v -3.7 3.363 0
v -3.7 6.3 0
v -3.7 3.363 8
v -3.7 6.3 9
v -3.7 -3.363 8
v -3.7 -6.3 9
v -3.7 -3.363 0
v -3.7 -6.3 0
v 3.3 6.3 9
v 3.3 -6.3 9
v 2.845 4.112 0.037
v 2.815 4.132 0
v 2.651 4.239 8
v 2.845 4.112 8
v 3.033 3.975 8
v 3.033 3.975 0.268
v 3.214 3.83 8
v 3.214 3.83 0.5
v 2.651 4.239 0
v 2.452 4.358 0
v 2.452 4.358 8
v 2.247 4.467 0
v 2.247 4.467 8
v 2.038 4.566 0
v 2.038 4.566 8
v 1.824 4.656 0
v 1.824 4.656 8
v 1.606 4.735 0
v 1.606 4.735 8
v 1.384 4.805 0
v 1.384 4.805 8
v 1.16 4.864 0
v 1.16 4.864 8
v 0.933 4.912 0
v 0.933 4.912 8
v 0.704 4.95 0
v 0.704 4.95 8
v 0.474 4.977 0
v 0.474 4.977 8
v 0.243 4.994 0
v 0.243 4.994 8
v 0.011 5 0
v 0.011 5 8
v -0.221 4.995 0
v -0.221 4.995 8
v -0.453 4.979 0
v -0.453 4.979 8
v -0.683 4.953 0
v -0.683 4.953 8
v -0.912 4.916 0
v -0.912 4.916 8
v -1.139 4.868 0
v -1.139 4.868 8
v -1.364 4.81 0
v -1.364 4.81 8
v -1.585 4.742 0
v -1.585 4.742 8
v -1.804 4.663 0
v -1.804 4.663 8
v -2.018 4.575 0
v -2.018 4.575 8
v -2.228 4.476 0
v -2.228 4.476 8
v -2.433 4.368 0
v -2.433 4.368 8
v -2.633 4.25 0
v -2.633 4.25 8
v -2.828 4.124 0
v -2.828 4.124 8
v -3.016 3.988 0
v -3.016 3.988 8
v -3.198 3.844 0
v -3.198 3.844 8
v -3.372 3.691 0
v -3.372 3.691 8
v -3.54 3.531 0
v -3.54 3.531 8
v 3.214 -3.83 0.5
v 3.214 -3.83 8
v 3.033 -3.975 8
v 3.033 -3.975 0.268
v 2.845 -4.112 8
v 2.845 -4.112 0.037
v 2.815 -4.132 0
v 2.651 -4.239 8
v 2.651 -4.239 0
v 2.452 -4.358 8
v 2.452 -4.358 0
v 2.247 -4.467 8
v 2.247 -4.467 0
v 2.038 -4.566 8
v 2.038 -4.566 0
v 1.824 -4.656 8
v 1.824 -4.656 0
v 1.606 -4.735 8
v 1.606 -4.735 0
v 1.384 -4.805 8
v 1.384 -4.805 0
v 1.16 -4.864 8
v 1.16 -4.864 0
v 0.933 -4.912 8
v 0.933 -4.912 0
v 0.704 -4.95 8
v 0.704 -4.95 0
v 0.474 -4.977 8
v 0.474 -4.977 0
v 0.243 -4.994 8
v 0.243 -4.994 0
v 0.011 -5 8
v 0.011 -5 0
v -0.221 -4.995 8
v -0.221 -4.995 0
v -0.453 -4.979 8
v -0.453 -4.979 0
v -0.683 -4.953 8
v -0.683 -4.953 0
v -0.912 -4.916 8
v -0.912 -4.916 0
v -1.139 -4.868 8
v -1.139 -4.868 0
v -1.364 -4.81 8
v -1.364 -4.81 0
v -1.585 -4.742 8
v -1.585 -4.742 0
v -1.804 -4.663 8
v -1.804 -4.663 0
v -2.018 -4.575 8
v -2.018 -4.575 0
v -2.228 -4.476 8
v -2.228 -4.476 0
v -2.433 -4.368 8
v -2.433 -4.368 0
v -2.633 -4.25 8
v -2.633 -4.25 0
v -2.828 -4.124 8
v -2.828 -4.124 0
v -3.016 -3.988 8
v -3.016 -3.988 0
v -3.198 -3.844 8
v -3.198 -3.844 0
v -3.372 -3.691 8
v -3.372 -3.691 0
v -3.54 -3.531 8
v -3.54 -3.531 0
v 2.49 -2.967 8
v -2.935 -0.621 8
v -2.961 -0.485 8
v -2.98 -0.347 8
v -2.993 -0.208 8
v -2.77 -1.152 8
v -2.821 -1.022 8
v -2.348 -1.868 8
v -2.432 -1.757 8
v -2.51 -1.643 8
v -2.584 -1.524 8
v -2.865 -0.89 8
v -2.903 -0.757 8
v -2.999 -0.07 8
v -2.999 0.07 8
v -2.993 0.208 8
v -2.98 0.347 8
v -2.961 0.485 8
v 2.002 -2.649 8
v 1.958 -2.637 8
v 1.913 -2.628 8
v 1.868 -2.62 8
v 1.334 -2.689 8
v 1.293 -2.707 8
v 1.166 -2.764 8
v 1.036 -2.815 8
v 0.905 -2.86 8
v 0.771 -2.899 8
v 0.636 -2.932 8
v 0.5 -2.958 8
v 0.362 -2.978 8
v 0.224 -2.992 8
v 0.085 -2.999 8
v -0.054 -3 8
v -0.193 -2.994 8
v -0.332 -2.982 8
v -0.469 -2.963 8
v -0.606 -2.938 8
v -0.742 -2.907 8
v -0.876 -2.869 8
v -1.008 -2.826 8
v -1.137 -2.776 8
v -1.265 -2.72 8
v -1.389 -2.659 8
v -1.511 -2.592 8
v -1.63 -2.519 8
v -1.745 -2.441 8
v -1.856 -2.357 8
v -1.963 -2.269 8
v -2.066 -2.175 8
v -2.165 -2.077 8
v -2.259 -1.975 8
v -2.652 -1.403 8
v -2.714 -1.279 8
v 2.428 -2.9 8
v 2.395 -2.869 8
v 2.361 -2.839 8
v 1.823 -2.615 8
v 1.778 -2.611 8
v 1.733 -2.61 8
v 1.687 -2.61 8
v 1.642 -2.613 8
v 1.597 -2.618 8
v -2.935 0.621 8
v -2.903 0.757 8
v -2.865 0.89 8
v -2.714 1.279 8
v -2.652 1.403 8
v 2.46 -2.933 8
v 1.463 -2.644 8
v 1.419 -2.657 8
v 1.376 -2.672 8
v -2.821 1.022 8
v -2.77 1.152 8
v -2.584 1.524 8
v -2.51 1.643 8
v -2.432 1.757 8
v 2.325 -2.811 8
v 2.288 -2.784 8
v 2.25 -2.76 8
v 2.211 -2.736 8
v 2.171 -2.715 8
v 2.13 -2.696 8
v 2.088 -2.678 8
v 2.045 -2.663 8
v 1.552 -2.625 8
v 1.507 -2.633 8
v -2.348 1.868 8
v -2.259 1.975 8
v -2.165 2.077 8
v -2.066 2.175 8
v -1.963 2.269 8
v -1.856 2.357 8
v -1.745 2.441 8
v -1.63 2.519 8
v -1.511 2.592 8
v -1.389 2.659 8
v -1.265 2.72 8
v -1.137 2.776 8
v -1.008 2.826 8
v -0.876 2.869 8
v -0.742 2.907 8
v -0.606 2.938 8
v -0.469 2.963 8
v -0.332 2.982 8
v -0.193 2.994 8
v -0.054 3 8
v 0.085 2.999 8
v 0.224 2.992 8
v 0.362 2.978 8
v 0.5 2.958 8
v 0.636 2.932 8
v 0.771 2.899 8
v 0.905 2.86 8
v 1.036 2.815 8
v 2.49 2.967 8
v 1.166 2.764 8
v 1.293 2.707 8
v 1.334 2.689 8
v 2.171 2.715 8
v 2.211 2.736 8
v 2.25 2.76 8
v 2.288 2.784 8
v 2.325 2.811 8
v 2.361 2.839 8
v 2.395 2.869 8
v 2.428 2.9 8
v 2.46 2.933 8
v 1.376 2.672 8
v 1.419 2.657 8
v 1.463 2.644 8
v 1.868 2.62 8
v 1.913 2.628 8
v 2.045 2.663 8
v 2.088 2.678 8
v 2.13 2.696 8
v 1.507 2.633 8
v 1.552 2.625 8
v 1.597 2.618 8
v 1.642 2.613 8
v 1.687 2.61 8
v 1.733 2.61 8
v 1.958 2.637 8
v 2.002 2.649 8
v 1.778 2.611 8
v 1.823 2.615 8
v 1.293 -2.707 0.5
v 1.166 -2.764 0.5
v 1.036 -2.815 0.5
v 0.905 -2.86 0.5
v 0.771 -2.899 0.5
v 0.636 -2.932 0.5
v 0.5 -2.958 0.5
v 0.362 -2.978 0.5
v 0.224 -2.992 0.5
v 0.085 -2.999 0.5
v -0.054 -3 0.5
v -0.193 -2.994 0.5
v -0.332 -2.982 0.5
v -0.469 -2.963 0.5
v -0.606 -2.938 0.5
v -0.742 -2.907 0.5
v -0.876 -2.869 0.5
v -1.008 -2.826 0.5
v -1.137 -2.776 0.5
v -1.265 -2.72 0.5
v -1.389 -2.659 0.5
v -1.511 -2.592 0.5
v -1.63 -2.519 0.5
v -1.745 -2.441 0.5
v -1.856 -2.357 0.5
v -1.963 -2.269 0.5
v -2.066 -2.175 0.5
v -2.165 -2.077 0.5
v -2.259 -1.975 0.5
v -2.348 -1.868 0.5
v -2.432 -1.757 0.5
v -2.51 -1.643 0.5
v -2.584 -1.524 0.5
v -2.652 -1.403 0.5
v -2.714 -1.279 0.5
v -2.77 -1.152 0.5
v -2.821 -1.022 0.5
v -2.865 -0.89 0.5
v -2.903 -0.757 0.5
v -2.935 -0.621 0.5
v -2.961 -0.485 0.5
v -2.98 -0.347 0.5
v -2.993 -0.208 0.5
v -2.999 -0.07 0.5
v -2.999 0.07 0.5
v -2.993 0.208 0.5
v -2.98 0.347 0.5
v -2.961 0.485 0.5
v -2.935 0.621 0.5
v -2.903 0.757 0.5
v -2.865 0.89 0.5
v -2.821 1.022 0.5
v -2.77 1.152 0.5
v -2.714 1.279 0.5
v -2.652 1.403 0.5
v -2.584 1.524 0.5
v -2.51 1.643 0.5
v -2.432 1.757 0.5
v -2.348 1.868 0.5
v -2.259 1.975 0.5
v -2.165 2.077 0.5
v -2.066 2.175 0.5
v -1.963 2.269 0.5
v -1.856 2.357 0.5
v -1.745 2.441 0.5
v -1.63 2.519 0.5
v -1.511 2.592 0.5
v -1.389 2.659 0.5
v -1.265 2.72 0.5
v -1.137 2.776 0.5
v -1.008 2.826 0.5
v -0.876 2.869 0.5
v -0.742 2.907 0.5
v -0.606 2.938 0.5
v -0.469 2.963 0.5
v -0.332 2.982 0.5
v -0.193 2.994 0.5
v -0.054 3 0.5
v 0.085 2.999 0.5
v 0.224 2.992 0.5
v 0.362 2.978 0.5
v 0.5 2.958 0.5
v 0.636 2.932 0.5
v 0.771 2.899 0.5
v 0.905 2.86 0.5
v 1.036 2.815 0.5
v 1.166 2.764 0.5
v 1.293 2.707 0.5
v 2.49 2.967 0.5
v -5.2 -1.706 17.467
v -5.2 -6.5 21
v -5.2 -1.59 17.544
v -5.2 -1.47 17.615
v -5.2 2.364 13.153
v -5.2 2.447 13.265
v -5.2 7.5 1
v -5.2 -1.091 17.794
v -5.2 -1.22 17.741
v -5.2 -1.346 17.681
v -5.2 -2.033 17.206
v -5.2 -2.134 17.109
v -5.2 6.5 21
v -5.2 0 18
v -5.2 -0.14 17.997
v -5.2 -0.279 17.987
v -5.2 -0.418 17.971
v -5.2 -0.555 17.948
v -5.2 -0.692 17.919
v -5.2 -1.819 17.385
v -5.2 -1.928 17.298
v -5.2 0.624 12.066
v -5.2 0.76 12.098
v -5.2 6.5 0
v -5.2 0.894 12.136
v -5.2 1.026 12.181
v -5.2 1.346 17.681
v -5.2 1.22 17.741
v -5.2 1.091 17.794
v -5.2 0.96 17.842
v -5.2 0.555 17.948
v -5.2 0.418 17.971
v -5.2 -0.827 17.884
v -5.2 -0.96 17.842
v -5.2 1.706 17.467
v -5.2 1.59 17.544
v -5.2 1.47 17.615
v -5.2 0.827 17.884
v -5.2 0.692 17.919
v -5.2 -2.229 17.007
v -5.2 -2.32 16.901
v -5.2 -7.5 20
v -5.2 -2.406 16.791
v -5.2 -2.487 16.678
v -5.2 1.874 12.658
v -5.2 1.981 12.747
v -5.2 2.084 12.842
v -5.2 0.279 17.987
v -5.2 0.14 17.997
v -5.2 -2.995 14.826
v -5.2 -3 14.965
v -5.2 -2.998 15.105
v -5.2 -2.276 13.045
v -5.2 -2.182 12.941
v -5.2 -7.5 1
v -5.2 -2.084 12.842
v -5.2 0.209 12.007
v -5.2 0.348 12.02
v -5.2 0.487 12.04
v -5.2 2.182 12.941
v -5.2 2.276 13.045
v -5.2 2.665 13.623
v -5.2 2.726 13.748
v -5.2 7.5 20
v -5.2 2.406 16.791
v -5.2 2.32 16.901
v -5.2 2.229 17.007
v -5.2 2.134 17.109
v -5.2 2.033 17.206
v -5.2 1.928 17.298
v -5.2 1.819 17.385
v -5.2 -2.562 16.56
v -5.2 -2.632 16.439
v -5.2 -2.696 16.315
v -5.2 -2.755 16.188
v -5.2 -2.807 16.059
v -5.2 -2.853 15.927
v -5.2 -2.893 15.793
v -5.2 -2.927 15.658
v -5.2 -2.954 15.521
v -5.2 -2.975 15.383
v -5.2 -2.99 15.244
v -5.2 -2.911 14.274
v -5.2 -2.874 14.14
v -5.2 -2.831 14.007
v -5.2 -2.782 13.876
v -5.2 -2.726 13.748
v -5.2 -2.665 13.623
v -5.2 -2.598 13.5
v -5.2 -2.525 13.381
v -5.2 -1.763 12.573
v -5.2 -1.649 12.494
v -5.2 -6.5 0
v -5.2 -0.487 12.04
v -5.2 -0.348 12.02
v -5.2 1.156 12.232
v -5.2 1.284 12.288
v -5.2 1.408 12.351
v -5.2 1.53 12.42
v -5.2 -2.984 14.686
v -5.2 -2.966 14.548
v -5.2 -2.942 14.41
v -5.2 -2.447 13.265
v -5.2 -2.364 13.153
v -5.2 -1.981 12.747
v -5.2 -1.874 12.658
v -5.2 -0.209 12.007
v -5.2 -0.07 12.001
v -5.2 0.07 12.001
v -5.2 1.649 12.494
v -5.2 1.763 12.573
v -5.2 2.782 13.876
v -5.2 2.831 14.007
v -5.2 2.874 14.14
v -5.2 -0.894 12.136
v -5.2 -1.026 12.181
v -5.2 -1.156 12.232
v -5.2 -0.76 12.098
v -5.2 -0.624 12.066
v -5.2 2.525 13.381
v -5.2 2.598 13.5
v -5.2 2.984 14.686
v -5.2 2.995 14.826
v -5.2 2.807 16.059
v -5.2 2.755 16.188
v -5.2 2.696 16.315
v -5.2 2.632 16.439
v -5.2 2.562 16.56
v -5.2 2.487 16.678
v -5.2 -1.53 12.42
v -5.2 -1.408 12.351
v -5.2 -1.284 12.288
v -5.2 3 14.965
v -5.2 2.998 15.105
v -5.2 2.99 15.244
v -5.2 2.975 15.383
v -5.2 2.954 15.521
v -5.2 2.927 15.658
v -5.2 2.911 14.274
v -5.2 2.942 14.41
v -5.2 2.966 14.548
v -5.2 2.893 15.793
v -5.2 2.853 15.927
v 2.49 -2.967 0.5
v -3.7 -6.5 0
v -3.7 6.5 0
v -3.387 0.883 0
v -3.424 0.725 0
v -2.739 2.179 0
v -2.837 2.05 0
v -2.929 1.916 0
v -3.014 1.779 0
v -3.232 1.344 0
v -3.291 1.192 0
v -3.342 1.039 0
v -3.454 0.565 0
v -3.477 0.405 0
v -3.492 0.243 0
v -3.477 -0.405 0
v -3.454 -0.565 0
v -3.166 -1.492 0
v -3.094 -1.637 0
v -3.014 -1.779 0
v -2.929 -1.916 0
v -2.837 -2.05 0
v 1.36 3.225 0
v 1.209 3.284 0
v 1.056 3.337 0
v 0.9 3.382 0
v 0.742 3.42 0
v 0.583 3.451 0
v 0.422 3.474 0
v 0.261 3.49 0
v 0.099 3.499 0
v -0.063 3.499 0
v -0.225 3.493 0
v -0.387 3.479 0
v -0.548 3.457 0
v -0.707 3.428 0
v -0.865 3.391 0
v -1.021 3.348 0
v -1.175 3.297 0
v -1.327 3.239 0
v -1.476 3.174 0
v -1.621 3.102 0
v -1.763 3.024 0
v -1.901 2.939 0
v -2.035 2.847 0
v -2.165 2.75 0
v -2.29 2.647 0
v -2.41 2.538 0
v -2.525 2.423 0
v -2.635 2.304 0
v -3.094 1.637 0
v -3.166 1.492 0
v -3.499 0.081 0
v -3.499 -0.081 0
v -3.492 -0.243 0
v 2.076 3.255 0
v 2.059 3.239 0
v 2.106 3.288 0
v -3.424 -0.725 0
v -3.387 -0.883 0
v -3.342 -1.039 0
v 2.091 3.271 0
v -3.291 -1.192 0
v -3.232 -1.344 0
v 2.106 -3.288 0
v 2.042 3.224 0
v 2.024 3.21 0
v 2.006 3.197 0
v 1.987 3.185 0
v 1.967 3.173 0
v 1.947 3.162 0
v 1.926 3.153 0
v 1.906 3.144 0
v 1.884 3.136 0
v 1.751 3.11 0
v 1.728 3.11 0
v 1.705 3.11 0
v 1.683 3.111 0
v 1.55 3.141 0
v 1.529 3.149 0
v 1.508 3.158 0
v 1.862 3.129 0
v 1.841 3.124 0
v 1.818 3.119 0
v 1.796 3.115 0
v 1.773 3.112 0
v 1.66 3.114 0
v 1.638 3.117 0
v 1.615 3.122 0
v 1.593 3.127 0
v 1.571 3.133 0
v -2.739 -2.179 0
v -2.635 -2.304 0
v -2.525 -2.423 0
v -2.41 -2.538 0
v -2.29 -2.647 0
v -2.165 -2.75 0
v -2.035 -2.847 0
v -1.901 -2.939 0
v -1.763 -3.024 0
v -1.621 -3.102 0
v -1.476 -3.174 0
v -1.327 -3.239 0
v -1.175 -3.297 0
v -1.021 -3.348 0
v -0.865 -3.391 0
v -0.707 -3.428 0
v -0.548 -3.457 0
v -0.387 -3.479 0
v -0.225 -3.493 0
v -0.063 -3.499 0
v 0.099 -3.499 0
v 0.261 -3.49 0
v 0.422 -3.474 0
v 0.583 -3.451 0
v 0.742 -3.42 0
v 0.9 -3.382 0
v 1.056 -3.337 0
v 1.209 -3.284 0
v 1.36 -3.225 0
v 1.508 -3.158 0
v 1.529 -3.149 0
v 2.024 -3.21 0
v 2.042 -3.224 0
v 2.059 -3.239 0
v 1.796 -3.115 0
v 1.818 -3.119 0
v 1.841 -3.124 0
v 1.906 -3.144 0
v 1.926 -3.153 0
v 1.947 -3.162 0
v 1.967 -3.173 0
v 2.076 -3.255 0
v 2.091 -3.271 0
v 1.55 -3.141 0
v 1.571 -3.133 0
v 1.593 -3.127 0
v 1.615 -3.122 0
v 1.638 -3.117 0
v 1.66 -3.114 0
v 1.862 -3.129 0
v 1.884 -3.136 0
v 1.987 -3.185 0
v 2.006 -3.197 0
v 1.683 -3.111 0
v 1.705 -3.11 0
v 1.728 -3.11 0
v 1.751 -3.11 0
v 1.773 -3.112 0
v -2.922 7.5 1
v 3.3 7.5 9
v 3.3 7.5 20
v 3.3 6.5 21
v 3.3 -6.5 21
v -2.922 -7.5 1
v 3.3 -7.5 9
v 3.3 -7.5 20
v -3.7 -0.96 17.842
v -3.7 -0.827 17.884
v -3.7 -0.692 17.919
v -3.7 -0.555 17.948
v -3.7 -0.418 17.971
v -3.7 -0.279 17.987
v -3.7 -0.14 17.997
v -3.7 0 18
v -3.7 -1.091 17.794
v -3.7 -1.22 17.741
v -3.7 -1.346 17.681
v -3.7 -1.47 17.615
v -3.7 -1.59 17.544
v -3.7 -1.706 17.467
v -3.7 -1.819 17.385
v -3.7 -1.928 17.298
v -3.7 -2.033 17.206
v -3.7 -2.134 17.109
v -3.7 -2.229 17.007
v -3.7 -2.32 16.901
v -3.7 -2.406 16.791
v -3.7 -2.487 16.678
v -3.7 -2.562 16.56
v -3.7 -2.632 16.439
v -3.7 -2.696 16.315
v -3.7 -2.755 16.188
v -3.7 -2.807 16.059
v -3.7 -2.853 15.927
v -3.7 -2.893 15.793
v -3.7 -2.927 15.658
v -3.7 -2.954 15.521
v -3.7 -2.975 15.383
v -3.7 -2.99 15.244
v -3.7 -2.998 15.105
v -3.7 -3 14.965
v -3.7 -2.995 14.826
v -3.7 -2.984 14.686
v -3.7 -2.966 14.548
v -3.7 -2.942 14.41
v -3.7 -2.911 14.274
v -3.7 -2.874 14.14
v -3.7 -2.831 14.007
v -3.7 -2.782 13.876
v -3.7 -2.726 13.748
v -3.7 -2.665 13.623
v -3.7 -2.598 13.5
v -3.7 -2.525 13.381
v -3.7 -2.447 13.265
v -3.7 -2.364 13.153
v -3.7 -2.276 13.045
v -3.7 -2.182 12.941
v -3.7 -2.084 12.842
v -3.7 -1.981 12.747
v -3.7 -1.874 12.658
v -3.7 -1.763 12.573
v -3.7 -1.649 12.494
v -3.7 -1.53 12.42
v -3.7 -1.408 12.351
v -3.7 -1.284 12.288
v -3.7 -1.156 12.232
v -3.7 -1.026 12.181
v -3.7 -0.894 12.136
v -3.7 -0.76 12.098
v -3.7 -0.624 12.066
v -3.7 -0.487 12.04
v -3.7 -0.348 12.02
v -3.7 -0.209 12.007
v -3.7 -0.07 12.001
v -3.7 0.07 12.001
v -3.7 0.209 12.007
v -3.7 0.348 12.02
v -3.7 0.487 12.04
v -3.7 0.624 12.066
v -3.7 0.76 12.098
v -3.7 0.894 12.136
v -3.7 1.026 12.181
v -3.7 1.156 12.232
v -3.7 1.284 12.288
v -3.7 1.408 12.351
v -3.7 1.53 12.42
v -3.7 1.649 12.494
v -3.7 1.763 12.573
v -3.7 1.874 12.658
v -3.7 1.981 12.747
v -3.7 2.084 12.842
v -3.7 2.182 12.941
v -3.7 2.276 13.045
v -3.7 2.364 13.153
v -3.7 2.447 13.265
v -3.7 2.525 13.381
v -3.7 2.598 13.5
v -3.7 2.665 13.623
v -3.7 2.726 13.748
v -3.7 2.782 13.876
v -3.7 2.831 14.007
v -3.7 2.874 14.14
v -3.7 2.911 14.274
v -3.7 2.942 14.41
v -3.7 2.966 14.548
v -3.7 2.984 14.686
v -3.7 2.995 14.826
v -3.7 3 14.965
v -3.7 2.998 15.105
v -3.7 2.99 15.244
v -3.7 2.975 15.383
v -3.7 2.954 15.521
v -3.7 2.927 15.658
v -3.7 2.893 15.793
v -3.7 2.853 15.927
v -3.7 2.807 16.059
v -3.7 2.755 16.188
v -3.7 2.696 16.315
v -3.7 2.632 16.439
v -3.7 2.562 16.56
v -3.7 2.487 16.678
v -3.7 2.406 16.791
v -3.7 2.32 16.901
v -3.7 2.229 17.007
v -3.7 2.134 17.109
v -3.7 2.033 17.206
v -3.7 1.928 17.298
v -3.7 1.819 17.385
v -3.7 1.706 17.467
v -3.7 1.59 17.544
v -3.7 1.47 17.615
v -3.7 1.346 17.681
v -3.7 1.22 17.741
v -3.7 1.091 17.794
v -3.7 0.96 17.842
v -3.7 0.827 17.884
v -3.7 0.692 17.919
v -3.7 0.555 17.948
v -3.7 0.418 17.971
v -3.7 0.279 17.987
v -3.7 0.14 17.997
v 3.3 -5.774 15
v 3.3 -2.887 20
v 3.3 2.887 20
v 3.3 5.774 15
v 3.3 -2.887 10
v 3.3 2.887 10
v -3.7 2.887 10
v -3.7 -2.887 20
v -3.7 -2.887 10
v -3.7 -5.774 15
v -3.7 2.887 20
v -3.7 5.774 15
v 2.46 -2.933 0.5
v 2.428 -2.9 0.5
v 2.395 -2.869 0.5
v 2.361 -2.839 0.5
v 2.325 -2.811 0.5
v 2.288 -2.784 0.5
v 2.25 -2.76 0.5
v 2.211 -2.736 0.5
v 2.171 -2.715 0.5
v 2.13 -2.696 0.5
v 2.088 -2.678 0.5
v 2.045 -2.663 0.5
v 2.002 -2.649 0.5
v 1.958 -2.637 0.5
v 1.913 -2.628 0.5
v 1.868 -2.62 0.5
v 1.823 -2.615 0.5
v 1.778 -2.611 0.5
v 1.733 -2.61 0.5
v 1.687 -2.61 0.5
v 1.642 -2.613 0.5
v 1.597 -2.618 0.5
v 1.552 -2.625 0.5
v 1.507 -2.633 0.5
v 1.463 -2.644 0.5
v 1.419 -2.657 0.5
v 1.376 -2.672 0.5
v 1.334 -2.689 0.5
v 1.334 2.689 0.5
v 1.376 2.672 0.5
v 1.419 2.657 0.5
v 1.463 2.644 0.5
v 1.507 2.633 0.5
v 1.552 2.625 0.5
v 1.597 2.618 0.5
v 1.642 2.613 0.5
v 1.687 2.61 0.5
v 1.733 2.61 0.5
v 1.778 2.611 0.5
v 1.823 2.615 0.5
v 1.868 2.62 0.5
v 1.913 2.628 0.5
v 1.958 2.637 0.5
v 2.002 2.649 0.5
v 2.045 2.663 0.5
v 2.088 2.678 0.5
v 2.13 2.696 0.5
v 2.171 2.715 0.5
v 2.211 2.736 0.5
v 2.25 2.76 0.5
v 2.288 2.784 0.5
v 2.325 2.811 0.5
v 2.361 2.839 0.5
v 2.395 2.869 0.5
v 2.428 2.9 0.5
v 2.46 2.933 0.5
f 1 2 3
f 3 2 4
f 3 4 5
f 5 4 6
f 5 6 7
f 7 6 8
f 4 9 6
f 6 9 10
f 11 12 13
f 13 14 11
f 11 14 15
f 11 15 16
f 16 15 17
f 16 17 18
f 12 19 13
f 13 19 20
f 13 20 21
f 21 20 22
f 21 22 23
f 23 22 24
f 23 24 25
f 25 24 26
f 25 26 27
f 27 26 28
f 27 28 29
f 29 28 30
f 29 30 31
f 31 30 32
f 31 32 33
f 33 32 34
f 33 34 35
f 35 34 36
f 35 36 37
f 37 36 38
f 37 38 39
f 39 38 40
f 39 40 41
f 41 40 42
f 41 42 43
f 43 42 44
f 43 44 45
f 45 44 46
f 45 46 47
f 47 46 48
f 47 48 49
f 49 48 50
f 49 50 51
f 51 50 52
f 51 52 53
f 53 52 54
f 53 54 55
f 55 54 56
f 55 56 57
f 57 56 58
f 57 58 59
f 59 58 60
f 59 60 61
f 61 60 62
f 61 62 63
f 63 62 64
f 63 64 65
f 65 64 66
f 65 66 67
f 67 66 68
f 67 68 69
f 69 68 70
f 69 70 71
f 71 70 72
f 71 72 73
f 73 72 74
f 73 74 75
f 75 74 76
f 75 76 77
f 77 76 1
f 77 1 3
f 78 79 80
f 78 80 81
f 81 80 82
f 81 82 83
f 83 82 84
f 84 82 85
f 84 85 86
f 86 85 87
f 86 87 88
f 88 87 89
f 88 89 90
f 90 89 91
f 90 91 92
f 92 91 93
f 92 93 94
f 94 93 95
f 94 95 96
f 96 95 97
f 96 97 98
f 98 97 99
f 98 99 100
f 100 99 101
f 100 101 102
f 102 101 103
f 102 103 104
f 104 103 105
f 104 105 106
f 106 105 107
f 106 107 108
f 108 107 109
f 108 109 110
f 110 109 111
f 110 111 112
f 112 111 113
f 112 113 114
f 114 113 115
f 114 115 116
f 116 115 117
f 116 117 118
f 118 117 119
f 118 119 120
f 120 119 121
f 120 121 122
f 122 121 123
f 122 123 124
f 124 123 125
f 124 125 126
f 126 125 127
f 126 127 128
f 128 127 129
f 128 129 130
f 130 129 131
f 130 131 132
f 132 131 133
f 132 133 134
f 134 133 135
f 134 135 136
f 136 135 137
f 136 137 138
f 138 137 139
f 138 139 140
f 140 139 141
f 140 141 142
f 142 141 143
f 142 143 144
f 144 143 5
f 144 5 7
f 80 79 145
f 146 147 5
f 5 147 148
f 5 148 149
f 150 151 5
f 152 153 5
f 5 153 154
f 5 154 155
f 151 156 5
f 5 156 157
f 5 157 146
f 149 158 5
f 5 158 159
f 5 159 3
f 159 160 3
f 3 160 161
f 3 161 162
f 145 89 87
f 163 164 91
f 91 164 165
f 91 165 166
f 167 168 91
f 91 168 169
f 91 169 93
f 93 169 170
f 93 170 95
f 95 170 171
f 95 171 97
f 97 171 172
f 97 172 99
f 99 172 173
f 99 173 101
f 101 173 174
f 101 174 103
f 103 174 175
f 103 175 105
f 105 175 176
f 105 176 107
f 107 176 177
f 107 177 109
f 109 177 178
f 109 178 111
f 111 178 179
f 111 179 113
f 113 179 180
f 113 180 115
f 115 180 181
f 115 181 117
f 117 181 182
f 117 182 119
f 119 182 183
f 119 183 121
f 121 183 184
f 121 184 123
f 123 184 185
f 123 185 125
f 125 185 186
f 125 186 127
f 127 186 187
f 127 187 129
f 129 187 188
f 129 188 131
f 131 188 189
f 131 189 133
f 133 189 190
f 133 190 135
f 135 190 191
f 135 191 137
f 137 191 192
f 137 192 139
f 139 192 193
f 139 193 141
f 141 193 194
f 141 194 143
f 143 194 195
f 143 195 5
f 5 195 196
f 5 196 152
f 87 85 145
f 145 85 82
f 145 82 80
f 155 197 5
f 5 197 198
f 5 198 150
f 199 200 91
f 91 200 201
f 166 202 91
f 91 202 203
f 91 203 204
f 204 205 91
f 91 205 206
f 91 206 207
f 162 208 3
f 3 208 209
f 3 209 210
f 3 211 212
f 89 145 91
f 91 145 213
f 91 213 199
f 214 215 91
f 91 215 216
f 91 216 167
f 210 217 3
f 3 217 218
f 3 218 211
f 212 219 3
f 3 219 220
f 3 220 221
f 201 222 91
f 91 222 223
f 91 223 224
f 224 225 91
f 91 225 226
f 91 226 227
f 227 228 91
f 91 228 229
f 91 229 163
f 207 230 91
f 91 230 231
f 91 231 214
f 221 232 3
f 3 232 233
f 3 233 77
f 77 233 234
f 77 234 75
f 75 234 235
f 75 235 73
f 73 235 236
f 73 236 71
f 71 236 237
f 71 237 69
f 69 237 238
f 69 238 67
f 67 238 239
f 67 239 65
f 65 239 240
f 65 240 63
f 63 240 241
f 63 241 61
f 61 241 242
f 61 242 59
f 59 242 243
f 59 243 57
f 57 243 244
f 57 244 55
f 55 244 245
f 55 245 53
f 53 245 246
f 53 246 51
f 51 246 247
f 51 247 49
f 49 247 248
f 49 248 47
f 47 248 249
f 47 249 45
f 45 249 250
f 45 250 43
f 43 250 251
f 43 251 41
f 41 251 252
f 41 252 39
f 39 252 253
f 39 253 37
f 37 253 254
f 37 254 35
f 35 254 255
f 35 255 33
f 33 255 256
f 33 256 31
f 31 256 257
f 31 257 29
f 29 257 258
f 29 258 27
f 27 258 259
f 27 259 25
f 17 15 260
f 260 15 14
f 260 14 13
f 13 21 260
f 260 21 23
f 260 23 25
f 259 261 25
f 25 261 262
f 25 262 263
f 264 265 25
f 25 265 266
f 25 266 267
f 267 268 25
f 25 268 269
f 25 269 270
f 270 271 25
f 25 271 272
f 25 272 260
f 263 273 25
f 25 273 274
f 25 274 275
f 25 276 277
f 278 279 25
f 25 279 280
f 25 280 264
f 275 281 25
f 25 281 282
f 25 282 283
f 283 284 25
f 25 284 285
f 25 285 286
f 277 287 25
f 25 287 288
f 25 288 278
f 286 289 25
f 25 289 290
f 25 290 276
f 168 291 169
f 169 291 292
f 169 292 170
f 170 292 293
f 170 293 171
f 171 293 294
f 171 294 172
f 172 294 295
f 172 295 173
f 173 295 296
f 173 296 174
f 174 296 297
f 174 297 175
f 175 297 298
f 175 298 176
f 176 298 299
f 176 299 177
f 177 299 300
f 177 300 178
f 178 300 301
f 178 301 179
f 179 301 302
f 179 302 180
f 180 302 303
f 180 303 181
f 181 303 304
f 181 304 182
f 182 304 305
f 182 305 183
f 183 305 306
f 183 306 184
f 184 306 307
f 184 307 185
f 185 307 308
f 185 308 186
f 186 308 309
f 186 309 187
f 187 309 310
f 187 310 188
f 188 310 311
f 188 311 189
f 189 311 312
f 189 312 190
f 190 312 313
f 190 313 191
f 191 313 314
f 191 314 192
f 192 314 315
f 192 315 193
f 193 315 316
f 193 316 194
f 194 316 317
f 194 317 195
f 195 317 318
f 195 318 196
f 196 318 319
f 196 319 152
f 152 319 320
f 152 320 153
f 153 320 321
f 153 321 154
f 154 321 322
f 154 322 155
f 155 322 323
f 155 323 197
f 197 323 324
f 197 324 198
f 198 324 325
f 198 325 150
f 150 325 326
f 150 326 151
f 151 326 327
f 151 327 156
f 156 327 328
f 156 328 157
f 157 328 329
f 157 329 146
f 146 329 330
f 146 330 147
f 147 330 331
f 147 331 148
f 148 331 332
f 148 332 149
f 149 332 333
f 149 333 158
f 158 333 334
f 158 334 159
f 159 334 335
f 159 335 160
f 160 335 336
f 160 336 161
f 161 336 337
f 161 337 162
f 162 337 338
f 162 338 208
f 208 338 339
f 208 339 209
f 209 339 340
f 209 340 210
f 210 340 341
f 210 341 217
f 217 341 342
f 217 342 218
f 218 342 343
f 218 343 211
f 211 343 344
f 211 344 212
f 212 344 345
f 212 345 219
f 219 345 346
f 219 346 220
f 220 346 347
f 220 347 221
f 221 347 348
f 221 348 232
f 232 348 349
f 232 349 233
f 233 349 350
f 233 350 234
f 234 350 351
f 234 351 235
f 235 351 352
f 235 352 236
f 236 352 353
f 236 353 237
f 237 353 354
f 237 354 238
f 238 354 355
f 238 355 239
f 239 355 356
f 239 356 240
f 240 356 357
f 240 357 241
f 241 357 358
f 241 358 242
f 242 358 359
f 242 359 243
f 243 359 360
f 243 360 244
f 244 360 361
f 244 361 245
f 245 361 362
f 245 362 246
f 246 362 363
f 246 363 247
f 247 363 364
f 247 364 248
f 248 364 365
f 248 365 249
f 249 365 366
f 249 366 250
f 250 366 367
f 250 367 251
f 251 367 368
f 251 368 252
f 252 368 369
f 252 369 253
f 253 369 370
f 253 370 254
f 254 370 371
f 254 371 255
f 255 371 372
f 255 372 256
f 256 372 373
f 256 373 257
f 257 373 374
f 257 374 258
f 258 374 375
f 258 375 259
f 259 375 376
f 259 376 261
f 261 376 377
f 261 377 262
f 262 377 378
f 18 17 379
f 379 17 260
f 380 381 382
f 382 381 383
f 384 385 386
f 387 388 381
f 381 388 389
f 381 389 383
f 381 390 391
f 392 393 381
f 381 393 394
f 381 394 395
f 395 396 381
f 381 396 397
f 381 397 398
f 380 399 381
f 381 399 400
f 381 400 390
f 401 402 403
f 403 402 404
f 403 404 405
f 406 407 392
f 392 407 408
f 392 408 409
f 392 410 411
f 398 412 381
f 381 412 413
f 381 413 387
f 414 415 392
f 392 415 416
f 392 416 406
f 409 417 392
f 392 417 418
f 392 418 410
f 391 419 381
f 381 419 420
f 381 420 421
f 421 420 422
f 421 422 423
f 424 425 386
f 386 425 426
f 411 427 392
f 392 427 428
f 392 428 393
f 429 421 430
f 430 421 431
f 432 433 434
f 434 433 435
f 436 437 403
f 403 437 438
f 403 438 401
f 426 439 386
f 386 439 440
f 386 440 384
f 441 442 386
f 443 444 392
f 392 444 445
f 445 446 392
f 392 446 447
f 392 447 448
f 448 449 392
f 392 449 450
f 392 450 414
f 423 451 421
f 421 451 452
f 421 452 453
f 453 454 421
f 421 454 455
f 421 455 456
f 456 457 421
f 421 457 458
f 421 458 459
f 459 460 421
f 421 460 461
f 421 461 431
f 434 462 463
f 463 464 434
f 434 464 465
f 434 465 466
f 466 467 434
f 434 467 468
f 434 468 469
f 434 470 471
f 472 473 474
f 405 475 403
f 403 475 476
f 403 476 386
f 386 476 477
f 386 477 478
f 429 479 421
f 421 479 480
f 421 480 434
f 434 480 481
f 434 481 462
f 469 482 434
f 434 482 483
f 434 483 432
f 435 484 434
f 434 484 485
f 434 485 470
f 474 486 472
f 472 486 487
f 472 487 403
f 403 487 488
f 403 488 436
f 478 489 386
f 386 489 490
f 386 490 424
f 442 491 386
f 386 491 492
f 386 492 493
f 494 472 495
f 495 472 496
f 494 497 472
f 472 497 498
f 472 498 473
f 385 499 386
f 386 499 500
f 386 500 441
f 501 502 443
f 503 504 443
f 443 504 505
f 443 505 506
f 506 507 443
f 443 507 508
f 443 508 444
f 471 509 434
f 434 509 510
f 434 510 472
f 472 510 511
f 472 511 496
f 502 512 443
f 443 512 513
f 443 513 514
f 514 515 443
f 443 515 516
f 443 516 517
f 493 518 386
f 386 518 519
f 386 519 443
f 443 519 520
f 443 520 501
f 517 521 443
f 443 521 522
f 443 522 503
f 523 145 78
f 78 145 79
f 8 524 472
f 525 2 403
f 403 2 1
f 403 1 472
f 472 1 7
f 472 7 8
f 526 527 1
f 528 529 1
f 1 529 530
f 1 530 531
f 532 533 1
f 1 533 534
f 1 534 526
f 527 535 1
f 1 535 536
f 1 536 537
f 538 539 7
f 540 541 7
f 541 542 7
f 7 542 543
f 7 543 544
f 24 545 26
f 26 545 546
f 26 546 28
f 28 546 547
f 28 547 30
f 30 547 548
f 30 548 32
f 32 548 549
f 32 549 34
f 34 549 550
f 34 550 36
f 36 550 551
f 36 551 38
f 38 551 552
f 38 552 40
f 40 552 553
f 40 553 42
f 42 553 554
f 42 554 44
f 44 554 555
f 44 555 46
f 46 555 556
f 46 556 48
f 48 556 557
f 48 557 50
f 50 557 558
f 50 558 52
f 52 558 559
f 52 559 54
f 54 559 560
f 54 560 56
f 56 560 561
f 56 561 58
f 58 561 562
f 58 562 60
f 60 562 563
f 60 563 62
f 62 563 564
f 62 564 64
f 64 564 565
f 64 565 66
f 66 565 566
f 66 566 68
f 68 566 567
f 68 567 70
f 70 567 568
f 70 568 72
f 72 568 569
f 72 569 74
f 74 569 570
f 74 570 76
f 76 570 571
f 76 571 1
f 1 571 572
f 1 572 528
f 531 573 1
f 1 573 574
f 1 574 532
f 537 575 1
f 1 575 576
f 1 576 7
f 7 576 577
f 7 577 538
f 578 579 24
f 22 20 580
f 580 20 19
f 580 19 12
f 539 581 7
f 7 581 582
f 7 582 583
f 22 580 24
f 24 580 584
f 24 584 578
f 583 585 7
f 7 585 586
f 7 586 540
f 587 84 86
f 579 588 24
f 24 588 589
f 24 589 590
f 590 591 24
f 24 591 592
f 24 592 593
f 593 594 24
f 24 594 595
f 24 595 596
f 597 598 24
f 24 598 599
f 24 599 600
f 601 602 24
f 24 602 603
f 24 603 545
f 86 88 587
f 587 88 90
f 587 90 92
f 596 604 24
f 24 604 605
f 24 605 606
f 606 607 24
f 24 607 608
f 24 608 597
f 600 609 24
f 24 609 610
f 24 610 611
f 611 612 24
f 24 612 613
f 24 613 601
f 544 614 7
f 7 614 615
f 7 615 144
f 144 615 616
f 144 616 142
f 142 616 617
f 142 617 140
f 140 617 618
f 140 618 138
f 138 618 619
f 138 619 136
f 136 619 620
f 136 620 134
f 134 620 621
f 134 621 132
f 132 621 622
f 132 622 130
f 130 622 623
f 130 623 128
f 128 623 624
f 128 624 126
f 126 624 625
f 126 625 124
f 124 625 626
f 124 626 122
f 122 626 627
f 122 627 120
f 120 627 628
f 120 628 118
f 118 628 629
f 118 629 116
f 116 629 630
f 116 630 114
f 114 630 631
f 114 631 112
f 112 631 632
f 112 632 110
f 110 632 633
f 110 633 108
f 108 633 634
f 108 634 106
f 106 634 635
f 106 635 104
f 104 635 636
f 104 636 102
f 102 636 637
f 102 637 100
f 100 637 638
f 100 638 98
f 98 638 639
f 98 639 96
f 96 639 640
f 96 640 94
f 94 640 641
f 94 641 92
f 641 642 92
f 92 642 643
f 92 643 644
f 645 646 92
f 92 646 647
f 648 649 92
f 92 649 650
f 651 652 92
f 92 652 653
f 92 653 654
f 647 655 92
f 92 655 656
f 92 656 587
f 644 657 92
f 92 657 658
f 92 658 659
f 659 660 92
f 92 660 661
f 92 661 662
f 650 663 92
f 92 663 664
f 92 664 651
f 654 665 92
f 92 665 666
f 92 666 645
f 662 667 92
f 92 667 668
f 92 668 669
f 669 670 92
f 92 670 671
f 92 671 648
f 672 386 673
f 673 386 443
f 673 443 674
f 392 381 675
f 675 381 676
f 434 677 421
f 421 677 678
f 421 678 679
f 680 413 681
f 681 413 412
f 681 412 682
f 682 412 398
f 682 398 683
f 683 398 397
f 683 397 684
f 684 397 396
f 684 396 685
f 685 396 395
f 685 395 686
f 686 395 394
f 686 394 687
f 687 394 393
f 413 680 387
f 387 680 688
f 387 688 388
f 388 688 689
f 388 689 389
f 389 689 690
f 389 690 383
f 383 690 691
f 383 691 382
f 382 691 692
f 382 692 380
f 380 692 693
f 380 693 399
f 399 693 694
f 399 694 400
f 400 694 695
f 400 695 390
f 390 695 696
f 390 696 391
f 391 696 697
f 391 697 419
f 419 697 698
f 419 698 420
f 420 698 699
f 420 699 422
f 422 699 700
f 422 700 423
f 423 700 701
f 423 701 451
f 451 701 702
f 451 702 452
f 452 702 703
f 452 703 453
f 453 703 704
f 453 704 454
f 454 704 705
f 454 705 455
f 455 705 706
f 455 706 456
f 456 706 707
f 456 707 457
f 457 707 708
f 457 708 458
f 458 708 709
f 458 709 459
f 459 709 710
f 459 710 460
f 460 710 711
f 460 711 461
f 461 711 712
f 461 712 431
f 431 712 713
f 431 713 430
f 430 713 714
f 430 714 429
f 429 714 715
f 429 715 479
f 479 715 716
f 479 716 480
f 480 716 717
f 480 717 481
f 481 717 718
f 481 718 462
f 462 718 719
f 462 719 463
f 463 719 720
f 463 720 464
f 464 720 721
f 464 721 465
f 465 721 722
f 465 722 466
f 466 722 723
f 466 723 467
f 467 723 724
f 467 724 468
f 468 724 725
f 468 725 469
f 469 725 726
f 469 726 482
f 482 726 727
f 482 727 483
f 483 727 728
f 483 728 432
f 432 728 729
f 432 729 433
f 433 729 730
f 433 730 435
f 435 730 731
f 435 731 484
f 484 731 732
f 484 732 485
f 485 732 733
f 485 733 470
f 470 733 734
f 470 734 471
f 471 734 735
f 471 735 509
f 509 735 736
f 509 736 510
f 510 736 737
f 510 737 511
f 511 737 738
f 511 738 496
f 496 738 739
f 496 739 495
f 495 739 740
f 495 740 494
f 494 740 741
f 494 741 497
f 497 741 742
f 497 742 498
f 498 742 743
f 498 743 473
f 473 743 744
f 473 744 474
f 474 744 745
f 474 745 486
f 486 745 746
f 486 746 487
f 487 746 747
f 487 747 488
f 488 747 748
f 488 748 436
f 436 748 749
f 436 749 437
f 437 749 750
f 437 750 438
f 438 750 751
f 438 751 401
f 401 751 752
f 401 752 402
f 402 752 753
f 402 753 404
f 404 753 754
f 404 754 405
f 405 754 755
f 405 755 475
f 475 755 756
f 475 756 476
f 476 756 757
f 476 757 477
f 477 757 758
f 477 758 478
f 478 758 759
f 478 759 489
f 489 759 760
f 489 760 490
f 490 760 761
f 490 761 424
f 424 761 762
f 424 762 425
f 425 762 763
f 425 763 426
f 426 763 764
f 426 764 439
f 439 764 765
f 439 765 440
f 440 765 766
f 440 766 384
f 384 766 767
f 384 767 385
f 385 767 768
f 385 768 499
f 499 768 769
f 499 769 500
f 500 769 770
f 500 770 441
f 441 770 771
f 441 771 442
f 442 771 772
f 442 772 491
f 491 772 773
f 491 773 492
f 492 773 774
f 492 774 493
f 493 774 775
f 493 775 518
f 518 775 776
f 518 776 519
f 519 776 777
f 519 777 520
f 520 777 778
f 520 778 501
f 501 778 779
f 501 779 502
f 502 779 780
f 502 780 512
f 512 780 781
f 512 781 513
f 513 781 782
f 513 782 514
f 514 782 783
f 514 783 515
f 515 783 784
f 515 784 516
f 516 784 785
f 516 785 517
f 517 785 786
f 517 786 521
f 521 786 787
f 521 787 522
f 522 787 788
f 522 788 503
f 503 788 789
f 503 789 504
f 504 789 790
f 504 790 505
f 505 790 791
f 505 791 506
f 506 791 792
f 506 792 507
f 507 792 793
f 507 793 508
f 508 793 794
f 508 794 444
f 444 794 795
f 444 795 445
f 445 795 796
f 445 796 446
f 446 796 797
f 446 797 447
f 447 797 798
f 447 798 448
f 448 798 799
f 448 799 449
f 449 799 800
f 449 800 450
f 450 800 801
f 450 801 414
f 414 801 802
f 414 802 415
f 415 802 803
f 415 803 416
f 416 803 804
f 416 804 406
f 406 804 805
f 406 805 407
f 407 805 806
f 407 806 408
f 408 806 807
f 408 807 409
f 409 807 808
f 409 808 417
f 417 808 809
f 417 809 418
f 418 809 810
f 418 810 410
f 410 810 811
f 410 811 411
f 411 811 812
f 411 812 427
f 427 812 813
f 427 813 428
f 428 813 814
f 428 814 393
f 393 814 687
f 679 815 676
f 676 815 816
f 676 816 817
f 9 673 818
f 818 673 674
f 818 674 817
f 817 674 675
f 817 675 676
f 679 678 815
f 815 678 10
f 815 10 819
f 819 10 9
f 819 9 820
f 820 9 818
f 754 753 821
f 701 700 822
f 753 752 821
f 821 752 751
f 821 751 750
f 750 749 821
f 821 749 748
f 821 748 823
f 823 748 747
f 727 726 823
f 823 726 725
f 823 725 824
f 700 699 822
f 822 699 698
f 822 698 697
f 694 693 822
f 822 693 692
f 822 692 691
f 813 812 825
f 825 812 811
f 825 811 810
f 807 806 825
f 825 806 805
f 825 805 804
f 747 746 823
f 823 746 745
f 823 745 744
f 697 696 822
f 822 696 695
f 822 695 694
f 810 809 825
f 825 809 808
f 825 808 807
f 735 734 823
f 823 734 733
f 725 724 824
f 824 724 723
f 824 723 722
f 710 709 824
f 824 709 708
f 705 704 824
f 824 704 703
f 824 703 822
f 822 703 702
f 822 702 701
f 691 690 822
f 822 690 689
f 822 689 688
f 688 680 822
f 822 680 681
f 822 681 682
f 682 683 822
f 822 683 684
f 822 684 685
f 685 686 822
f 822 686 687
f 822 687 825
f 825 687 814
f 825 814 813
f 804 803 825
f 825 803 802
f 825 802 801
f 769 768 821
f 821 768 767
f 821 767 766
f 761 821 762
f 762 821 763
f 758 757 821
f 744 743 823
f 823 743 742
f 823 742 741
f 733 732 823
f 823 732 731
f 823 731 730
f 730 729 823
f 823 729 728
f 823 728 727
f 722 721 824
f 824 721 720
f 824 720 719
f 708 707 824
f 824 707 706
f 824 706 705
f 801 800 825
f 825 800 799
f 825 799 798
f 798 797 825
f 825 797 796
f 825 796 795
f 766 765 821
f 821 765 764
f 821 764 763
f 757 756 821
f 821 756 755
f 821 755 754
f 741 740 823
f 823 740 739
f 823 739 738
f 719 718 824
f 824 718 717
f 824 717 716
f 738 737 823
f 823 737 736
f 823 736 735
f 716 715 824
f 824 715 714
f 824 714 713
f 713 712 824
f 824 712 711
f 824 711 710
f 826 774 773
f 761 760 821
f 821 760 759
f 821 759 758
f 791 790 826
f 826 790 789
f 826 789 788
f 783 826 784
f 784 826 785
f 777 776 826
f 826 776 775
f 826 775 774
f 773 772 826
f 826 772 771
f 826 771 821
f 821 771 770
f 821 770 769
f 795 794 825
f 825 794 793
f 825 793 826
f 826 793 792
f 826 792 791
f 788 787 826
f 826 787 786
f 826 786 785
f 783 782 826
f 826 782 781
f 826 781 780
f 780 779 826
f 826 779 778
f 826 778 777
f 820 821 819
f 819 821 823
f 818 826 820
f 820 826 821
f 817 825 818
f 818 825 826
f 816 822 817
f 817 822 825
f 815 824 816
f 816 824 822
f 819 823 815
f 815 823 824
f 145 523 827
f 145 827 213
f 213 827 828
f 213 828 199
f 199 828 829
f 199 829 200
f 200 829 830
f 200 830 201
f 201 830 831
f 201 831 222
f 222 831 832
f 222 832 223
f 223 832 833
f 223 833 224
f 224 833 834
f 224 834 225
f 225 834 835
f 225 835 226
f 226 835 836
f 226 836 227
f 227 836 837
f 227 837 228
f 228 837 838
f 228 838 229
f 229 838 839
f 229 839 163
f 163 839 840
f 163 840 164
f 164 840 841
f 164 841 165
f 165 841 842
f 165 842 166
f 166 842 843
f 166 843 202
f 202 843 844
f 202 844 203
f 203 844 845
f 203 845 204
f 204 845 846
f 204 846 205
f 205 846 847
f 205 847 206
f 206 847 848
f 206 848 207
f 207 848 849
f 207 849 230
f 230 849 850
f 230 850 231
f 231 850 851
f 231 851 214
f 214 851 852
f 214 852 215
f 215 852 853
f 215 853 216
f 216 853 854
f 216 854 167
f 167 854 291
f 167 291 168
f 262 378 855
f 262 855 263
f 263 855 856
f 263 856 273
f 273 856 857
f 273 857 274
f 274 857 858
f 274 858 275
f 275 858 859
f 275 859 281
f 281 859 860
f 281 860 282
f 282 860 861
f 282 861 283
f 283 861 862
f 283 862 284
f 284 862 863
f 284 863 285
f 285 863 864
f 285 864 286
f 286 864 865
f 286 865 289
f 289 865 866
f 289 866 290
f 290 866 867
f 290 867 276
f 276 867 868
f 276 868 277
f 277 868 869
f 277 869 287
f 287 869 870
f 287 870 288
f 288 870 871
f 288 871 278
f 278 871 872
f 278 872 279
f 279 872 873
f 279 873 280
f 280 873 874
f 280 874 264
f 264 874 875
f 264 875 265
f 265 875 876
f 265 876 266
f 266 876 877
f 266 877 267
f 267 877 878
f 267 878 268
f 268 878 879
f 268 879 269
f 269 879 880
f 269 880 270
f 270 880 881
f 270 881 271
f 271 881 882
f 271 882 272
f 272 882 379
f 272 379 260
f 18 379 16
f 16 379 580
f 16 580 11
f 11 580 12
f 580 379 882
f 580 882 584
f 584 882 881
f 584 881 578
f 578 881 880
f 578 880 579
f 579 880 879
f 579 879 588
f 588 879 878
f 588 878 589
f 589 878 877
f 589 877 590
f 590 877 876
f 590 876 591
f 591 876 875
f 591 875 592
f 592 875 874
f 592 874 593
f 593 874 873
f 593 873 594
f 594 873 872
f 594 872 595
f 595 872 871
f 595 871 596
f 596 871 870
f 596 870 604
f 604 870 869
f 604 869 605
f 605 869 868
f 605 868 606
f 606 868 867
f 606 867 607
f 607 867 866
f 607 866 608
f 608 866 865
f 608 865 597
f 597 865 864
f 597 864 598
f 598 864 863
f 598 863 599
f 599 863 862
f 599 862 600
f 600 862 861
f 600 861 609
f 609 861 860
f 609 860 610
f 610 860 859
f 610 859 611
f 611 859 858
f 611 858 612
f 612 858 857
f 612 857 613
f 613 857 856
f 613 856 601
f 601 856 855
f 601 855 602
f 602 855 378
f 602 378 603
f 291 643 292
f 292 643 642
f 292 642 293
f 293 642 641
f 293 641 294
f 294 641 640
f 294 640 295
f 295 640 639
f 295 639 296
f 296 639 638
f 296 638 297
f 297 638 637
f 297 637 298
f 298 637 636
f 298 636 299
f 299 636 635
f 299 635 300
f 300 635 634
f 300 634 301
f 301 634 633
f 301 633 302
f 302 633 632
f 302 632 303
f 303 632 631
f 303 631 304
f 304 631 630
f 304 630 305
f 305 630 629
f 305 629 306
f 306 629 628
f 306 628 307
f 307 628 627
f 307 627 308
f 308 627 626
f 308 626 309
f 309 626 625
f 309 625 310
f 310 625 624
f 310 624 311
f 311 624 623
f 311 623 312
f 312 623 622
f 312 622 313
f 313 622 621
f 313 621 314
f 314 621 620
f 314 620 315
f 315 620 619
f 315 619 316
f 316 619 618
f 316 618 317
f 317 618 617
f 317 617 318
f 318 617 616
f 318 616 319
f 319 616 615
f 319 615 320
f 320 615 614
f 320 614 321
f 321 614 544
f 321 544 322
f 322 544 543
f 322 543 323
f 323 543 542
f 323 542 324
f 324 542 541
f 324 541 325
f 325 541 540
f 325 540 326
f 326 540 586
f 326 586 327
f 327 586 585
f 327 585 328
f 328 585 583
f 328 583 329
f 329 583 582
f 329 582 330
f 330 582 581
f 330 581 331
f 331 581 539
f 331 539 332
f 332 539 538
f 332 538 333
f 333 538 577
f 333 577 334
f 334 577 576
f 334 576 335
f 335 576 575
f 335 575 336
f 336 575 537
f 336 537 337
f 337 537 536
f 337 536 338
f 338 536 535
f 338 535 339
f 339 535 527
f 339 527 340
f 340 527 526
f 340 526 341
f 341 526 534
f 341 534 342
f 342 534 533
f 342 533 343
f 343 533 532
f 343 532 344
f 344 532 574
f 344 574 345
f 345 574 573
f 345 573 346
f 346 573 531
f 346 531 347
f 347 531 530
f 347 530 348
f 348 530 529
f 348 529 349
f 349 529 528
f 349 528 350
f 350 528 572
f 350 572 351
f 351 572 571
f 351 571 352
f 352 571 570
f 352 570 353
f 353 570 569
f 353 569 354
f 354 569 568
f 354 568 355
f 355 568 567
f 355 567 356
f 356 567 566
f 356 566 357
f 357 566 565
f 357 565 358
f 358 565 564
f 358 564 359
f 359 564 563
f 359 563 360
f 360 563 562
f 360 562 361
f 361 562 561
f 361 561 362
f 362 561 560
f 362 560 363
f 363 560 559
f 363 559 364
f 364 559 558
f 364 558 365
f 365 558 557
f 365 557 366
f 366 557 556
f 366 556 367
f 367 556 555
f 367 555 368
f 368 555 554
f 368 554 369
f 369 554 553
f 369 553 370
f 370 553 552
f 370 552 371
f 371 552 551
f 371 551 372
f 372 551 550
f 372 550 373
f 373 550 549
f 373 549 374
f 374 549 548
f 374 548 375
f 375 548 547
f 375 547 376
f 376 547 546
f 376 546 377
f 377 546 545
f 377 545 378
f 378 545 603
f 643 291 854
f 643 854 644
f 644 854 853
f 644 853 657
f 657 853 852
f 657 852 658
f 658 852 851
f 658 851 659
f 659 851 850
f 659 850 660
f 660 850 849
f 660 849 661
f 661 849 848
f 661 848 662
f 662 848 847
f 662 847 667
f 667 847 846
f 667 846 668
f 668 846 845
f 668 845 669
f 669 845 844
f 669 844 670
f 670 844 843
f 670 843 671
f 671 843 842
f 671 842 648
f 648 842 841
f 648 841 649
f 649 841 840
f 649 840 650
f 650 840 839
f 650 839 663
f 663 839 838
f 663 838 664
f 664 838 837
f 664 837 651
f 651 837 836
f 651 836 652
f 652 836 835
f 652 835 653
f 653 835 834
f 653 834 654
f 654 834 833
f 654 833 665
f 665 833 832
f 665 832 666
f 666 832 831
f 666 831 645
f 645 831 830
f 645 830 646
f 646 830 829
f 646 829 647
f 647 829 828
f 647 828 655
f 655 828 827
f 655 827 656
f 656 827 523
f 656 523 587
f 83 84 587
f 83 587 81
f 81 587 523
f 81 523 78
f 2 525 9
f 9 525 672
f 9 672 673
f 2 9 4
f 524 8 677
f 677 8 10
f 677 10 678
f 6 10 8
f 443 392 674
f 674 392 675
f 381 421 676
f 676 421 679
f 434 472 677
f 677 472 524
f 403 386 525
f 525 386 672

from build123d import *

# Parameters (mm, degrees)
SALIENTE_EXTRUIR1_DEPTH = 8
CROQUIS3_W              = 21
CROQUIS3_H              = 15
SALIENTE_EXTRUIR2_DEPTH = 1.5
CROQUIS4_R              = 3
CORTAR_EXTRUIR1_DEPTH   = 9.413938048
CROQUIS5_W              = 12
CROQUIS5_H              = 15
SALIENTE_EXTRUIR3_DEPTH = 7
CORTAR_EXTRUIR2_DEPTH   = 7
REDONDEO1_R             = 1
CHAFL_N1_SIZE           = 0.5
SALIENTE_EXTRUIR4_DEPTH = 1.2
CHAFL_N2_SIZE           = 1


with BuildPart() as part:
    # Croquis1 → Saliente-Extruir1 (new body)
    with BuildSketch(Plane.XY):
        with BuildLine():
            Line((1.928362829, 2.298133329), (3.213938048, 3.830222216))
            ThreePointArc((3.213938048, 3.830222216), (-0.868240888, 4.924038765), (-4.330127019, 2.5))
            Line((-4.330127019, 2.5), (-5.2, 2.5))
            Line((-5.2, 2.5), (-5.2, -2.5))
            Line((-5.2, -2.5), (-4.330127019, -2.5))
            ThreePointArc((-4.330127019, -2.5), (-0.868240888, -4.924038765), (3.213938048, -3.830222216))
            Line((3.213938048, -3.830222216), (1.928362829, -2.298133329))
            ThreePointArc((1.928362829, -2.298133329), (-3, 0), (1.928362829, 2.298133329))
        make_face()
    extrude(amount=SALIENTE_EXTRUIR1_DEPTH)

    # Croquis3 → Saliente-Extruir2 (add)
    with BuildSketch(Plane.ZY.offset(5.2)):
        with Locations((10.5, 0)):
            Rectangle(CROQUIS3_W, CROQUIS3_H)
    extrude(amount=-SALIENTE_EXTRUIR2_DEPTH)

    # Croquis4 → Cortar-Extruir1 (cut, through all)
    with BuildSketch(Plane.ZY.offset(5.2)):
        with Locations((15, 0)):
            Circle(CROQUIS4_R)
    extrude(amount=-CORTAR_EXTRUIR1_DEPTH, mode=Mode.SUBTRACT)

    # Croquis5 → Saliente-Extruir3 (add)
    with BuildSketch(Plane(origin=(-3.7, 0, 0), x_dir=(0, 0, -1), z_dir=(1, 0, 0))):
        with Locations((-15, 0)):
            Rectangle(CROQUIS5_W, CROQUIS5_H)
    extrude(amount=SALIENTE_EXTRUIR3_DEPTH)

    # Croquis7 → Cortar-Extruir2 (cut)
    with BuildSketch(Plane(origin=(3.3, 0, 0), x_dir=(0, 0, -1), z_dir=(1, 0, 0))):
        Polygon((-10, -2.886751346), (-10, 2.886751346), (-15, 5.773502692), (-20, 2.886751346), (-20, -2.886751346), (-15, -5.773502692), align=None)
    extrude(amount=-CORTAR_EXTRUIR2_DEPTH, mode=Mode.SUBTRACT)

    # Redondeo1
    redondeo1_edges = [part.edges().sort_by_distance(p)[0] for p in [
        (1.928362829, -2.298133329, 4),
        (1.928362829, 2.298133329, 4),
    ]]
    fillet(redondeo1_edges, radius=REDONDEO1_R)

    # Chaflán1
    chafl_n1_edges = [part.edges().sort_by_distance(p)[0] for p in [
        (-3, 0, 0),
        (2.851721878, -3.398549793, 0),
        (2.851721878, 3.398549793, 0),
        (1.935447157, 2.632392254, 0),
        (1.935447157, -2.632392254, 0),
    ]]
    chamfer(chafl_n1_edges, length=CHAFL_N1_SIZE)

    # Croquis8 → Saliente-Extruir4 (add)
    with BuildSketch(Plane(origin=(0, 7.5, 0), x_dir=(1, 0, 0), z_dir=(0, 1, 0))):
        Polygon((-3.7, 0), (3.3, -9), (-3.7, -9), align=None)
    saliente_extruir4 = extrude(amount=-SALIENTE_EXTRUIR4_DEPTH)

    # Simetría1: Saliente-Extruir4 across plane
    add(saliente_extruir4.mirror(Plane.ZX))

    # Chaflán2
    chafl_n2_edges = [part.edges().sort_by_distance(p)[0] for p in [
        (-4.45, -7.5, 0),
        (-4.45, 7.5, 0),
        (-0.95, 7.5, 21),
        (-0.95, -7.5, 21),
    ]]
    chamfer(chafl_n2_edges, length=CHAFL_N2_SIZE)


solid = part.part
